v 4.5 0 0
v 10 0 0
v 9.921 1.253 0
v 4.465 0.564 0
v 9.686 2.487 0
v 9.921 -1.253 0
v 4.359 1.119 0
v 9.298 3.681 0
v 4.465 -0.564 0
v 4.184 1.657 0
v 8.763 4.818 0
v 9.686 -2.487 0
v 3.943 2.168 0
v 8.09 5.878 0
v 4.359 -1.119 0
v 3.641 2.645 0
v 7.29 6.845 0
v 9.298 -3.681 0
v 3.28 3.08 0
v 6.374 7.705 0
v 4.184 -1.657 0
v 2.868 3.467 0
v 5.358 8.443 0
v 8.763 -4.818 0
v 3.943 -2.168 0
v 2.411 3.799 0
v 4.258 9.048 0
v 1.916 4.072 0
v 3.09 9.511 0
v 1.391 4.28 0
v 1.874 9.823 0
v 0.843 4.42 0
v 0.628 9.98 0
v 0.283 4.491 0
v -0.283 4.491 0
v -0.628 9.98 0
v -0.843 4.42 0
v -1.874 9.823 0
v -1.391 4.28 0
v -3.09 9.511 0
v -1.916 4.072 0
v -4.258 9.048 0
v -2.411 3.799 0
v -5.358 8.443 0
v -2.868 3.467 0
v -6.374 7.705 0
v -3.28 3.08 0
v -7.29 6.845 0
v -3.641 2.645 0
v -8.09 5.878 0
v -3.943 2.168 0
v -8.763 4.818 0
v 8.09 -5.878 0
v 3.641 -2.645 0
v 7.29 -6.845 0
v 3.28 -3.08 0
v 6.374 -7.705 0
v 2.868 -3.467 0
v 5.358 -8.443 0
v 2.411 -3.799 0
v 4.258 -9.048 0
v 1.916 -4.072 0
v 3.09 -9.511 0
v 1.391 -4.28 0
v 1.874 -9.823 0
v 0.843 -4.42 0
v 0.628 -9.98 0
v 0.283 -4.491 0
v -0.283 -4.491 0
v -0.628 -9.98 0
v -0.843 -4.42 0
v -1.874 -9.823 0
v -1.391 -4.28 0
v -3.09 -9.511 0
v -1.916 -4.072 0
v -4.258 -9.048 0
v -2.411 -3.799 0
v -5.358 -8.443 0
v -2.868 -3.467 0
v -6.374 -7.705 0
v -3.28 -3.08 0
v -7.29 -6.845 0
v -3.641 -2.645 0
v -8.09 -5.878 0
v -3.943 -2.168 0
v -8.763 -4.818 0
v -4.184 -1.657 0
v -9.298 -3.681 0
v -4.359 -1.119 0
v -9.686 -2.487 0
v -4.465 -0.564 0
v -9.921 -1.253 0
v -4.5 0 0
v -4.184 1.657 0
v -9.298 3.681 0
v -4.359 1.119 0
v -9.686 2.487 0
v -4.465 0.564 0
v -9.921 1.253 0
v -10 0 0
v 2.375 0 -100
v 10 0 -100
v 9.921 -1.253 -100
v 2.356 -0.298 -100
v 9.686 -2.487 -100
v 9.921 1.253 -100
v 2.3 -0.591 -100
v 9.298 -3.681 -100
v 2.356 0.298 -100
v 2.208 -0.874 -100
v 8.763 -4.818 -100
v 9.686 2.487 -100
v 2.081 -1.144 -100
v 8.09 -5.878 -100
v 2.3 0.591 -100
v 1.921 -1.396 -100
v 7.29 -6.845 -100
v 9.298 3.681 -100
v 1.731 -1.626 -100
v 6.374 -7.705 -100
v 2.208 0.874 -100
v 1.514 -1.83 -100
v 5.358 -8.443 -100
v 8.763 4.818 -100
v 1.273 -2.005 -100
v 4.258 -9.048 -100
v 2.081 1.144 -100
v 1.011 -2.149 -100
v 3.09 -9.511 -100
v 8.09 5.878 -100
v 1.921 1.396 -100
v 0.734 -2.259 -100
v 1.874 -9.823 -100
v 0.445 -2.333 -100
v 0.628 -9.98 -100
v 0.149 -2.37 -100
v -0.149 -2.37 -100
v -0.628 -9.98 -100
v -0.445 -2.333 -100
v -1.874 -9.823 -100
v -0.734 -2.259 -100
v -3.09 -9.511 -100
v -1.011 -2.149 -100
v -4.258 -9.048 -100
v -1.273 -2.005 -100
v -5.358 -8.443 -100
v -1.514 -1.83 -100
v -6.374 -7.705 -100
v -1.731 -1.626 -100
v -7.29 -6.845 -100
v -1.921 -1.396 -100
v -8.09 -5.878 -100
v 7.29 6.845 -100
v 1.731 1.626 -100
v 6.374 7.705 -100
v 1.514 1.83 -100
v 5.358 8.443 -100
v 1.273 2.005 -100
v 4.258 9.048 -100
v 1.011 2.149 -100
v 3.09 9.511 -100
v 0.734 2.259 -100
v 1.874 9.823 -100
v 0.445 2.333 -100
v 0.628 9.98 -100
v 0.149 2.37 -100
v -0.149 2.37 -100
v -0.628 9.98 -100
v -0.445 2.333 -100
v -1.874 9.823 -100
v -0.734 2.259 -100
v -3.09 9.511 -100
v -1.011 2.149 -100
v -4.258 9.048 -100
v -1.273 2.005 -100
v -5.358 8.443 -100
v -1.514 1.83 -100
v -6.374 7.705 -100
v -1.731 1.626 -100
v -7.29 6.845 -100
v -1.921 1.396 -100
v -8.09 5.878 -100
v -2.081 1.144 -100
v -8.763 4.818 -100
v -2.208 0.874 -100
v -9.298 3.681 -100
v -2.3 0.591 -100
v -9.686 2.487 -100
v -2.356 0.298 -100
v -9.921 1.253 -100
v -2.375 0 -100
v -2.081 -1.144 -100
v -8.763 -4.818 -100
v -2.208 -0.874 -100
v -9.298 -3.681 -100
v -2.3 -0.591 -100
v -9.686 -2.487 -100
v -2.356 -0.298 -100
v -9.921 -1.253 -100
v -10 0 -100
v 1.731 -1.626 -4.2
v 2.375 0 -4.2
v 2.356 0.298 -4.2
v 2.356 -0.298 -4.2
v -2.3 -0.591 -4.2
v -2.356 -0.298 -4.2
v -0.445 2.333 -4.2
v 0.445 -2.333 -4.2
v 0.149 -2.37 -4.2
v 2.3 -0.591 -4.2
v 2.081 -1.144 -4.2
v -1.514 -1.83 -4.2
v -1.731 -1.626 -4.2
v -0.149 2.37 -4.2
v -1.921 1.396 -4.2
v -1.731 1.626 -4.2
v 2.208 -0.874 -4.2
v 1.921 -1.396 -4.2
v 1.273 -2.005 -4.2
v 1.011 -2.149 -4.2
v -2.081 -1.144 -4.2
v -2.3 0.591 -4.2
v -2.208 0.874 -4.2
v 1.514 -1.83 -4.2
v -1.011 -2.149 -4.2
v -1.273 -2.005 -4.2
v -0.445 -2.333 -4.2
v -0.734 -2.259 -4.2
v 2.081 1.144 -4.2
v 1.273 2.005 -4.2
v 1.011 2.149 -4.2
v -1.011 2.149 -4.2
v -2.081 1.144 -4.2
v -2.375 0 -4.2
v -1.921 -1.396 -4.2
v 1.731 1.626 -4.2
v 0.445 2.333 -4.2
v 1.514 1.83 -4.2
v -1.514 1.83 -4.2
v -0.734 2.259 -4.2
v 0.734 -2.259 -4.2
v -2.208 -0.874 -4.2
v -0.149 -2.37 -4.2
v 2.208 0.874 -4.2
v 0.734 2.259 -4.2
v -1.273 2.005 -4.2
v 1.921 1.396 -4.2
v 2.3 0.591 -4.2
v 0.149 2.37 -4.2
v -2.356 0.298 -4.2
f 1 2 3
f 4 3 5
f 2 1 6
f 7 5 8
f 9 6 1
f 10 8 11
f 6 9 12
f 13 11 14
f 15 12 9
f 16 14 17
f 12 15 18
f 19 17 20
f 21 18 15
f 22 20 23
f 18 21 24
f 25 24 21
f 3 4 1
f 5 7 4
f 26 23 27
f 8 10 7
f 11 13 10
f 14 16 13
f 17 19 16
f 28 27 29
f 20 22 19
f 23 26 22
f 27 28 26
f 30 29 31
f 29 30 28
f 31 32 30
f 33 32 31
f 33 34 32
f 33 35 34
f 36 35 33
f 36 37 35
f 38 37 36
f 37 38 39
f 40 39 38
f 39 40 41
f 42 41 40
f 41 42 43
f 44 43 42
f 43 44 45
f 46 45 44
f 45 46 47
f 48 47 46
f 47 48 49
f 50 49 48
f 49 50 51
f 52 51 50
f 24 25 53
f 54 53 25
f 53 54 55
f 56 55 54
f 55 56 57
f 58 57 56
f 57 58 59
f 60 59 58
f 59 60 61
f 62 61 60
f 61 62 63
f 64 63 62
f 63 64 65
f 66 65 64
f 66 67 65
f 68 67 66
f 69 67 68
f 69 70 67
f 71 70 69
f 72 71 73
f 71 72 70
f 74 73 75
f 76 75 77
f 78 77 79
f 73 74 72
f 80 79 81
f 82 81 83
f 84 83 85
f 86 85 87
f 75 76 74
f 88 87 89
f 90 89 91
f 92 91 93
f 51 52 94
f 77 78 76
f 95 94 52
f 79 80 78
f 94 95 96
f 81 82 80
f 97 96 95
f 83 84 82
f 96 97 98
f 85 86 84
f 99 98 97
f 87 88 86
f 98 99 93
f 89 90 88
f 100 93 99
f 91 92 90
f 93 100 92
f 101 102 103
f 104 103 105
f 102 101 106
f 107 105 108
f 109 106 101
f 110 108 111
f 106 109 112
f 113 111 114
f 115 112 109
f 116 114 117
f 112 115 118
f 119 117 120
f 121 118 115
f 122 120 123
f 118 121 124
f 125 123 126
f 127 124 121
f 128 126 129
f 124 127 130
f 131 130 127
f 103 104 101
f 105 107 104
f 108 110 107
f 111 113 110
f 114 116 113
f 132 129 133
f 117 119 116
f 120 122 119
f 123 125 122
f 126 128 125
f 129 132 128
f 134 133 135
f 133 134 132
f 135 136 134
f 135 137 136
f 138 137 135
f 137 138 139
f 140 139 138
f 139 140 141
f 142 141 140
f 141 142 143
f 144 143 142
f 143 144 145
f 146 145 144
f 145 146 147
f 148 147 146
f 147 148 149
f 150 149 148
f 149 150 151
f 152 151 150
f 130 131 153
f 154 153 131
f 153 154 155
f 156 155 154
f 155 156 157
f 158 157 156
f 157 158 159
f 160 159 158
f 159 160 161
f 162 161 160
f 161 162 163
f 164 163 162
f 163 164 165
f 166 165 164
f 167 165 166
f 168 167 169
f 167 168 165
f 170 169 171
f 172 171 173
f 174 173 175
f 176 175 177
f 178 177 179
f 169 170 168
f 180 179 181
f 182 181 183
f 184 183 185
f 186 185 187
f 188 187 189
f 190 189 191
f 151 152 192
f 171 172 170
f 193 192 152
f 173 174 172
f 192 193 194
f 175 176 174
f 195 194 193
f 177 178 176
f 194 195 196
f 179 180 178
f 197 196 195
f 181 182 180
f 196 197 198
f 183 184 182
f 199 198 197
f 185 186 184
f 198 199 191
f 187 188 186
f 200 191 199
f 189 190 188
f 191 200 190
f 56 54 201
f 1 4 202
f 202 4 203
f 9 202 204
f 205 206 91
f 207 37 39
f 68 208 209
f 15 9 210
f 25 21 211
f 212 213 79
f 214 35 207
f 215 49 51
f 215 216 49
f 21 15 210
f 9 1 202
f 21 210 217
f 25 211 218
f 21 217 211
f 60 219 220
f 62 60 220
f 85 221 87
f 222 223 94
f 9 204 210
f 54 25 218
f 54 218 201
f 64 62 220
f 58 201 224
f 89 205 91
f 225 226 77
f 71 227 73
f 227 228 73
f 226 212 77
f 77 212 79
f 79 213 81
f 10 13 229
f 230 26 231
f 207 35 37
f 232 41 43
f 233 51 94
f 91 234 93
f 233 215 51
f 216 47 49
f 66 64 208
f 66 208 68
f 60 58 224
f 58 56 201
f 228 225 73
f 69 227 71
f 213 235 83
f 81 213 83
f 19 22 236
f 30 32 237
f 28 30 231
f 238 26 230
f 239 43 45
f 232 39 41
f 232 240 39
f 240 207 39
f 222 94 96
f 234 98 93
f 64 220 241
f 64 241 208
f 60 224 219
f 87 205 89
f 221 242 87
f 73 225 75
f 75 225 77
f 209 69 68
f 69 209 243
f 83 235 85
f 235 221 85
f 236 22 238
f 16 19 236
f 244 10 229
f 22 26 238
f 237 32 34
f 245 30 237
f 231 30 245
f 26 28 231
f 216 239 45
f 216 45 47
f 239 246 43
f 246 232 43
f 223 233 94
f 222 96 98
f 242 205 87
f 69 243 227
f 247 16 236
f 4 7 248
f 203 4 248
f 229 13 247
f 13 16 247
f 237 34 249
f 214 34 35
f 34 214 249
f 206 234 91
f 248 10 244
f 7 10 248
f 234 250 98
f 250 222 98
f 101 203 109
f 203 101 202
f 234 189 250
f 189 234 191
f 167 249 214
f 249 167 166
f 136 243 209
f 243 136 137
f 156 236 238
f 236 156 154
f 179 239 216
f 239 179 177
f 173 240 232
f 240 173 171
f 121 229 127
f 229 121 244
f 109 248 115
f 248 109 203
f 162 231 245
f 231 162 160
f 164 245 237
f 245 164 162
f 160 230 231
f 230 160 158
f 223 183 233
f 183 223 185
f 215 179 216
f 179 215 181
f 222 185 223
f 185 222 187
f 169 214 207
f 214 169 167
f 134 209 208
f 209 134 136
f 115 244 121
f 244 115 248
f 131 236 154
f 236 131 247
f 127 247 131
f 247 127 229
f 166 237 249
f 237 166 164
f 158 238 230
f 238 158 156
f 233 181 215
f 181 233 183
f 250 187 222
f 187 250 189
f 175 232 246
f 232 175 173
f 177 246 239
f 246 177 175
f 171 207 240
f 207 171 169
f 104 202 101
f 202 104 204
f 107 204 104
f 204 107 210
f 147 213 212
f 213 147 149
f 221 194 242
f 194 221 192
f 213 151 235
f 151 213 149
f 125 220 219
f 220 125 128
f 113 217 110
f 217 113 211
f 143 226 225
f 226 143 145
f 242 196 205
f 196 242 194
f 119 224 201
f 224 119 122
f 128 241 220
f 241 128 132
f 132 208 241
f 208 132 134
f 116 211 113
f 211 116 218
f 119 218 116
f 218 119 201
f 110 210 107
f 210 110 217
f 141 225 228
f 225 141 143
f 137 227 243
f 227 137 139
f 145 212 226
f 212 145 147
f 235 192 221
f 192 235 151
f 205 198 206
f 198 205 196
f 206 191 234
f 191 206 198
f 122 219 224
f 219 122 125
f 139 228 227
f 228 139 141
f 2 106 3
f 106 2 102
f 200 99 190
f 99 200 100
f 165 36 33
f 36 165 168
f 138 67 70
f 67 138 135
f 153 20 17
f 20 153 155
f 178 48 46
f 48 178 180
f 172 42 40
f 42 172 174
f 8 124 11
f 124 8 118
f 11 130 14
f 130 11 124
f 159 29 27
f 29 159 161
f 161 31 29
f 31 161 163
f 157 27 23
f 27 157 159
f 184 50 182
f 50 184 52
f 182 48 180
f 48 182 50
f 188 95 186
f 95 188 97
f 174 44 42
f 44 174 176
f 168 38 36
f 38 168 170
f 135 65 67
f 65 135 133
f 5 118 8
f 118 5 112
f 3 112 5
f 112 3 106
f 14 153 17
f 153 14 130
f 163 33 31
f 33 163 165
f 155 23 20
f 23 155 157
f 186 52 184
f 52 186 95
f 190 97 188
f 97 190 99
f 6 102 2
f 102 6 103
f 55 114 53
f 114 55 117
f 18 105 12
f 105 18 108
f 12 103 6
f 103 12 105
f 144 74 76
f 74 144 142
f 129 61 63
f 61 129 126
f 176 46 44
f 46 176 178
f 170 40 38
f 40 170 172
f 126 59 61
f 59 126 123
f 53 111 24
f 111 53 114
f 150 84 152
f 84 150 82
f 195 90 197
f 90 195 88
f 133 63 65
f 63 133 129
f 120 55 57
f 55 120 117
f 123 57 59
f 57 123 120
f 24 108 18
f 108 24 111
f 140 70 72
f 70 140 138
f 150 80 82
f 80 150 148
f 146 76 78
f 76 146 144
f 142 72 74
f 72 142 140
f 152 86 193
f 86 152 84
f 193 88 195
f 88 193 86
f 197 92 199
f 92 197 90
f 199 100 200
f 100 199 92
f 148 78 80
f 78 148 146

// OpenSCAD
$fn = 50;


difference() {
	union() {
		translate(v = [0, 0, -100.0000000000]) {
			cylinder(h = 100, r = 10.0000000000);
		}
		cylinder(h = 0, r = 13.0000000000);
	}
	union() {
		translate(v = [0, 0, 0]) {
			rotate(a = [0, 0, 0]) {
				difference() {
					union() {
						#translate(v = [0, 0, -100.0000000000]) {
							cylinder(h = 100, r = 2.2500000000);
						}
						#translate(v = [0, 0, -4.2000000000]) {
							cylinder(h = 4.2000000000, r1 = 2.3750000000, r2 = 4.5000000000);
						}
						#translate(v = [0, 0, -100.0000000000]) {
							cylinder(h = 100, r = 2.3750000000);
						}
						#translate(v = [0, 0, -100.0000000000]) {
							cylinder(h = 100, r = 2.2500000000);
						}
					}
					union();
				}
			}
		}
	}
}
